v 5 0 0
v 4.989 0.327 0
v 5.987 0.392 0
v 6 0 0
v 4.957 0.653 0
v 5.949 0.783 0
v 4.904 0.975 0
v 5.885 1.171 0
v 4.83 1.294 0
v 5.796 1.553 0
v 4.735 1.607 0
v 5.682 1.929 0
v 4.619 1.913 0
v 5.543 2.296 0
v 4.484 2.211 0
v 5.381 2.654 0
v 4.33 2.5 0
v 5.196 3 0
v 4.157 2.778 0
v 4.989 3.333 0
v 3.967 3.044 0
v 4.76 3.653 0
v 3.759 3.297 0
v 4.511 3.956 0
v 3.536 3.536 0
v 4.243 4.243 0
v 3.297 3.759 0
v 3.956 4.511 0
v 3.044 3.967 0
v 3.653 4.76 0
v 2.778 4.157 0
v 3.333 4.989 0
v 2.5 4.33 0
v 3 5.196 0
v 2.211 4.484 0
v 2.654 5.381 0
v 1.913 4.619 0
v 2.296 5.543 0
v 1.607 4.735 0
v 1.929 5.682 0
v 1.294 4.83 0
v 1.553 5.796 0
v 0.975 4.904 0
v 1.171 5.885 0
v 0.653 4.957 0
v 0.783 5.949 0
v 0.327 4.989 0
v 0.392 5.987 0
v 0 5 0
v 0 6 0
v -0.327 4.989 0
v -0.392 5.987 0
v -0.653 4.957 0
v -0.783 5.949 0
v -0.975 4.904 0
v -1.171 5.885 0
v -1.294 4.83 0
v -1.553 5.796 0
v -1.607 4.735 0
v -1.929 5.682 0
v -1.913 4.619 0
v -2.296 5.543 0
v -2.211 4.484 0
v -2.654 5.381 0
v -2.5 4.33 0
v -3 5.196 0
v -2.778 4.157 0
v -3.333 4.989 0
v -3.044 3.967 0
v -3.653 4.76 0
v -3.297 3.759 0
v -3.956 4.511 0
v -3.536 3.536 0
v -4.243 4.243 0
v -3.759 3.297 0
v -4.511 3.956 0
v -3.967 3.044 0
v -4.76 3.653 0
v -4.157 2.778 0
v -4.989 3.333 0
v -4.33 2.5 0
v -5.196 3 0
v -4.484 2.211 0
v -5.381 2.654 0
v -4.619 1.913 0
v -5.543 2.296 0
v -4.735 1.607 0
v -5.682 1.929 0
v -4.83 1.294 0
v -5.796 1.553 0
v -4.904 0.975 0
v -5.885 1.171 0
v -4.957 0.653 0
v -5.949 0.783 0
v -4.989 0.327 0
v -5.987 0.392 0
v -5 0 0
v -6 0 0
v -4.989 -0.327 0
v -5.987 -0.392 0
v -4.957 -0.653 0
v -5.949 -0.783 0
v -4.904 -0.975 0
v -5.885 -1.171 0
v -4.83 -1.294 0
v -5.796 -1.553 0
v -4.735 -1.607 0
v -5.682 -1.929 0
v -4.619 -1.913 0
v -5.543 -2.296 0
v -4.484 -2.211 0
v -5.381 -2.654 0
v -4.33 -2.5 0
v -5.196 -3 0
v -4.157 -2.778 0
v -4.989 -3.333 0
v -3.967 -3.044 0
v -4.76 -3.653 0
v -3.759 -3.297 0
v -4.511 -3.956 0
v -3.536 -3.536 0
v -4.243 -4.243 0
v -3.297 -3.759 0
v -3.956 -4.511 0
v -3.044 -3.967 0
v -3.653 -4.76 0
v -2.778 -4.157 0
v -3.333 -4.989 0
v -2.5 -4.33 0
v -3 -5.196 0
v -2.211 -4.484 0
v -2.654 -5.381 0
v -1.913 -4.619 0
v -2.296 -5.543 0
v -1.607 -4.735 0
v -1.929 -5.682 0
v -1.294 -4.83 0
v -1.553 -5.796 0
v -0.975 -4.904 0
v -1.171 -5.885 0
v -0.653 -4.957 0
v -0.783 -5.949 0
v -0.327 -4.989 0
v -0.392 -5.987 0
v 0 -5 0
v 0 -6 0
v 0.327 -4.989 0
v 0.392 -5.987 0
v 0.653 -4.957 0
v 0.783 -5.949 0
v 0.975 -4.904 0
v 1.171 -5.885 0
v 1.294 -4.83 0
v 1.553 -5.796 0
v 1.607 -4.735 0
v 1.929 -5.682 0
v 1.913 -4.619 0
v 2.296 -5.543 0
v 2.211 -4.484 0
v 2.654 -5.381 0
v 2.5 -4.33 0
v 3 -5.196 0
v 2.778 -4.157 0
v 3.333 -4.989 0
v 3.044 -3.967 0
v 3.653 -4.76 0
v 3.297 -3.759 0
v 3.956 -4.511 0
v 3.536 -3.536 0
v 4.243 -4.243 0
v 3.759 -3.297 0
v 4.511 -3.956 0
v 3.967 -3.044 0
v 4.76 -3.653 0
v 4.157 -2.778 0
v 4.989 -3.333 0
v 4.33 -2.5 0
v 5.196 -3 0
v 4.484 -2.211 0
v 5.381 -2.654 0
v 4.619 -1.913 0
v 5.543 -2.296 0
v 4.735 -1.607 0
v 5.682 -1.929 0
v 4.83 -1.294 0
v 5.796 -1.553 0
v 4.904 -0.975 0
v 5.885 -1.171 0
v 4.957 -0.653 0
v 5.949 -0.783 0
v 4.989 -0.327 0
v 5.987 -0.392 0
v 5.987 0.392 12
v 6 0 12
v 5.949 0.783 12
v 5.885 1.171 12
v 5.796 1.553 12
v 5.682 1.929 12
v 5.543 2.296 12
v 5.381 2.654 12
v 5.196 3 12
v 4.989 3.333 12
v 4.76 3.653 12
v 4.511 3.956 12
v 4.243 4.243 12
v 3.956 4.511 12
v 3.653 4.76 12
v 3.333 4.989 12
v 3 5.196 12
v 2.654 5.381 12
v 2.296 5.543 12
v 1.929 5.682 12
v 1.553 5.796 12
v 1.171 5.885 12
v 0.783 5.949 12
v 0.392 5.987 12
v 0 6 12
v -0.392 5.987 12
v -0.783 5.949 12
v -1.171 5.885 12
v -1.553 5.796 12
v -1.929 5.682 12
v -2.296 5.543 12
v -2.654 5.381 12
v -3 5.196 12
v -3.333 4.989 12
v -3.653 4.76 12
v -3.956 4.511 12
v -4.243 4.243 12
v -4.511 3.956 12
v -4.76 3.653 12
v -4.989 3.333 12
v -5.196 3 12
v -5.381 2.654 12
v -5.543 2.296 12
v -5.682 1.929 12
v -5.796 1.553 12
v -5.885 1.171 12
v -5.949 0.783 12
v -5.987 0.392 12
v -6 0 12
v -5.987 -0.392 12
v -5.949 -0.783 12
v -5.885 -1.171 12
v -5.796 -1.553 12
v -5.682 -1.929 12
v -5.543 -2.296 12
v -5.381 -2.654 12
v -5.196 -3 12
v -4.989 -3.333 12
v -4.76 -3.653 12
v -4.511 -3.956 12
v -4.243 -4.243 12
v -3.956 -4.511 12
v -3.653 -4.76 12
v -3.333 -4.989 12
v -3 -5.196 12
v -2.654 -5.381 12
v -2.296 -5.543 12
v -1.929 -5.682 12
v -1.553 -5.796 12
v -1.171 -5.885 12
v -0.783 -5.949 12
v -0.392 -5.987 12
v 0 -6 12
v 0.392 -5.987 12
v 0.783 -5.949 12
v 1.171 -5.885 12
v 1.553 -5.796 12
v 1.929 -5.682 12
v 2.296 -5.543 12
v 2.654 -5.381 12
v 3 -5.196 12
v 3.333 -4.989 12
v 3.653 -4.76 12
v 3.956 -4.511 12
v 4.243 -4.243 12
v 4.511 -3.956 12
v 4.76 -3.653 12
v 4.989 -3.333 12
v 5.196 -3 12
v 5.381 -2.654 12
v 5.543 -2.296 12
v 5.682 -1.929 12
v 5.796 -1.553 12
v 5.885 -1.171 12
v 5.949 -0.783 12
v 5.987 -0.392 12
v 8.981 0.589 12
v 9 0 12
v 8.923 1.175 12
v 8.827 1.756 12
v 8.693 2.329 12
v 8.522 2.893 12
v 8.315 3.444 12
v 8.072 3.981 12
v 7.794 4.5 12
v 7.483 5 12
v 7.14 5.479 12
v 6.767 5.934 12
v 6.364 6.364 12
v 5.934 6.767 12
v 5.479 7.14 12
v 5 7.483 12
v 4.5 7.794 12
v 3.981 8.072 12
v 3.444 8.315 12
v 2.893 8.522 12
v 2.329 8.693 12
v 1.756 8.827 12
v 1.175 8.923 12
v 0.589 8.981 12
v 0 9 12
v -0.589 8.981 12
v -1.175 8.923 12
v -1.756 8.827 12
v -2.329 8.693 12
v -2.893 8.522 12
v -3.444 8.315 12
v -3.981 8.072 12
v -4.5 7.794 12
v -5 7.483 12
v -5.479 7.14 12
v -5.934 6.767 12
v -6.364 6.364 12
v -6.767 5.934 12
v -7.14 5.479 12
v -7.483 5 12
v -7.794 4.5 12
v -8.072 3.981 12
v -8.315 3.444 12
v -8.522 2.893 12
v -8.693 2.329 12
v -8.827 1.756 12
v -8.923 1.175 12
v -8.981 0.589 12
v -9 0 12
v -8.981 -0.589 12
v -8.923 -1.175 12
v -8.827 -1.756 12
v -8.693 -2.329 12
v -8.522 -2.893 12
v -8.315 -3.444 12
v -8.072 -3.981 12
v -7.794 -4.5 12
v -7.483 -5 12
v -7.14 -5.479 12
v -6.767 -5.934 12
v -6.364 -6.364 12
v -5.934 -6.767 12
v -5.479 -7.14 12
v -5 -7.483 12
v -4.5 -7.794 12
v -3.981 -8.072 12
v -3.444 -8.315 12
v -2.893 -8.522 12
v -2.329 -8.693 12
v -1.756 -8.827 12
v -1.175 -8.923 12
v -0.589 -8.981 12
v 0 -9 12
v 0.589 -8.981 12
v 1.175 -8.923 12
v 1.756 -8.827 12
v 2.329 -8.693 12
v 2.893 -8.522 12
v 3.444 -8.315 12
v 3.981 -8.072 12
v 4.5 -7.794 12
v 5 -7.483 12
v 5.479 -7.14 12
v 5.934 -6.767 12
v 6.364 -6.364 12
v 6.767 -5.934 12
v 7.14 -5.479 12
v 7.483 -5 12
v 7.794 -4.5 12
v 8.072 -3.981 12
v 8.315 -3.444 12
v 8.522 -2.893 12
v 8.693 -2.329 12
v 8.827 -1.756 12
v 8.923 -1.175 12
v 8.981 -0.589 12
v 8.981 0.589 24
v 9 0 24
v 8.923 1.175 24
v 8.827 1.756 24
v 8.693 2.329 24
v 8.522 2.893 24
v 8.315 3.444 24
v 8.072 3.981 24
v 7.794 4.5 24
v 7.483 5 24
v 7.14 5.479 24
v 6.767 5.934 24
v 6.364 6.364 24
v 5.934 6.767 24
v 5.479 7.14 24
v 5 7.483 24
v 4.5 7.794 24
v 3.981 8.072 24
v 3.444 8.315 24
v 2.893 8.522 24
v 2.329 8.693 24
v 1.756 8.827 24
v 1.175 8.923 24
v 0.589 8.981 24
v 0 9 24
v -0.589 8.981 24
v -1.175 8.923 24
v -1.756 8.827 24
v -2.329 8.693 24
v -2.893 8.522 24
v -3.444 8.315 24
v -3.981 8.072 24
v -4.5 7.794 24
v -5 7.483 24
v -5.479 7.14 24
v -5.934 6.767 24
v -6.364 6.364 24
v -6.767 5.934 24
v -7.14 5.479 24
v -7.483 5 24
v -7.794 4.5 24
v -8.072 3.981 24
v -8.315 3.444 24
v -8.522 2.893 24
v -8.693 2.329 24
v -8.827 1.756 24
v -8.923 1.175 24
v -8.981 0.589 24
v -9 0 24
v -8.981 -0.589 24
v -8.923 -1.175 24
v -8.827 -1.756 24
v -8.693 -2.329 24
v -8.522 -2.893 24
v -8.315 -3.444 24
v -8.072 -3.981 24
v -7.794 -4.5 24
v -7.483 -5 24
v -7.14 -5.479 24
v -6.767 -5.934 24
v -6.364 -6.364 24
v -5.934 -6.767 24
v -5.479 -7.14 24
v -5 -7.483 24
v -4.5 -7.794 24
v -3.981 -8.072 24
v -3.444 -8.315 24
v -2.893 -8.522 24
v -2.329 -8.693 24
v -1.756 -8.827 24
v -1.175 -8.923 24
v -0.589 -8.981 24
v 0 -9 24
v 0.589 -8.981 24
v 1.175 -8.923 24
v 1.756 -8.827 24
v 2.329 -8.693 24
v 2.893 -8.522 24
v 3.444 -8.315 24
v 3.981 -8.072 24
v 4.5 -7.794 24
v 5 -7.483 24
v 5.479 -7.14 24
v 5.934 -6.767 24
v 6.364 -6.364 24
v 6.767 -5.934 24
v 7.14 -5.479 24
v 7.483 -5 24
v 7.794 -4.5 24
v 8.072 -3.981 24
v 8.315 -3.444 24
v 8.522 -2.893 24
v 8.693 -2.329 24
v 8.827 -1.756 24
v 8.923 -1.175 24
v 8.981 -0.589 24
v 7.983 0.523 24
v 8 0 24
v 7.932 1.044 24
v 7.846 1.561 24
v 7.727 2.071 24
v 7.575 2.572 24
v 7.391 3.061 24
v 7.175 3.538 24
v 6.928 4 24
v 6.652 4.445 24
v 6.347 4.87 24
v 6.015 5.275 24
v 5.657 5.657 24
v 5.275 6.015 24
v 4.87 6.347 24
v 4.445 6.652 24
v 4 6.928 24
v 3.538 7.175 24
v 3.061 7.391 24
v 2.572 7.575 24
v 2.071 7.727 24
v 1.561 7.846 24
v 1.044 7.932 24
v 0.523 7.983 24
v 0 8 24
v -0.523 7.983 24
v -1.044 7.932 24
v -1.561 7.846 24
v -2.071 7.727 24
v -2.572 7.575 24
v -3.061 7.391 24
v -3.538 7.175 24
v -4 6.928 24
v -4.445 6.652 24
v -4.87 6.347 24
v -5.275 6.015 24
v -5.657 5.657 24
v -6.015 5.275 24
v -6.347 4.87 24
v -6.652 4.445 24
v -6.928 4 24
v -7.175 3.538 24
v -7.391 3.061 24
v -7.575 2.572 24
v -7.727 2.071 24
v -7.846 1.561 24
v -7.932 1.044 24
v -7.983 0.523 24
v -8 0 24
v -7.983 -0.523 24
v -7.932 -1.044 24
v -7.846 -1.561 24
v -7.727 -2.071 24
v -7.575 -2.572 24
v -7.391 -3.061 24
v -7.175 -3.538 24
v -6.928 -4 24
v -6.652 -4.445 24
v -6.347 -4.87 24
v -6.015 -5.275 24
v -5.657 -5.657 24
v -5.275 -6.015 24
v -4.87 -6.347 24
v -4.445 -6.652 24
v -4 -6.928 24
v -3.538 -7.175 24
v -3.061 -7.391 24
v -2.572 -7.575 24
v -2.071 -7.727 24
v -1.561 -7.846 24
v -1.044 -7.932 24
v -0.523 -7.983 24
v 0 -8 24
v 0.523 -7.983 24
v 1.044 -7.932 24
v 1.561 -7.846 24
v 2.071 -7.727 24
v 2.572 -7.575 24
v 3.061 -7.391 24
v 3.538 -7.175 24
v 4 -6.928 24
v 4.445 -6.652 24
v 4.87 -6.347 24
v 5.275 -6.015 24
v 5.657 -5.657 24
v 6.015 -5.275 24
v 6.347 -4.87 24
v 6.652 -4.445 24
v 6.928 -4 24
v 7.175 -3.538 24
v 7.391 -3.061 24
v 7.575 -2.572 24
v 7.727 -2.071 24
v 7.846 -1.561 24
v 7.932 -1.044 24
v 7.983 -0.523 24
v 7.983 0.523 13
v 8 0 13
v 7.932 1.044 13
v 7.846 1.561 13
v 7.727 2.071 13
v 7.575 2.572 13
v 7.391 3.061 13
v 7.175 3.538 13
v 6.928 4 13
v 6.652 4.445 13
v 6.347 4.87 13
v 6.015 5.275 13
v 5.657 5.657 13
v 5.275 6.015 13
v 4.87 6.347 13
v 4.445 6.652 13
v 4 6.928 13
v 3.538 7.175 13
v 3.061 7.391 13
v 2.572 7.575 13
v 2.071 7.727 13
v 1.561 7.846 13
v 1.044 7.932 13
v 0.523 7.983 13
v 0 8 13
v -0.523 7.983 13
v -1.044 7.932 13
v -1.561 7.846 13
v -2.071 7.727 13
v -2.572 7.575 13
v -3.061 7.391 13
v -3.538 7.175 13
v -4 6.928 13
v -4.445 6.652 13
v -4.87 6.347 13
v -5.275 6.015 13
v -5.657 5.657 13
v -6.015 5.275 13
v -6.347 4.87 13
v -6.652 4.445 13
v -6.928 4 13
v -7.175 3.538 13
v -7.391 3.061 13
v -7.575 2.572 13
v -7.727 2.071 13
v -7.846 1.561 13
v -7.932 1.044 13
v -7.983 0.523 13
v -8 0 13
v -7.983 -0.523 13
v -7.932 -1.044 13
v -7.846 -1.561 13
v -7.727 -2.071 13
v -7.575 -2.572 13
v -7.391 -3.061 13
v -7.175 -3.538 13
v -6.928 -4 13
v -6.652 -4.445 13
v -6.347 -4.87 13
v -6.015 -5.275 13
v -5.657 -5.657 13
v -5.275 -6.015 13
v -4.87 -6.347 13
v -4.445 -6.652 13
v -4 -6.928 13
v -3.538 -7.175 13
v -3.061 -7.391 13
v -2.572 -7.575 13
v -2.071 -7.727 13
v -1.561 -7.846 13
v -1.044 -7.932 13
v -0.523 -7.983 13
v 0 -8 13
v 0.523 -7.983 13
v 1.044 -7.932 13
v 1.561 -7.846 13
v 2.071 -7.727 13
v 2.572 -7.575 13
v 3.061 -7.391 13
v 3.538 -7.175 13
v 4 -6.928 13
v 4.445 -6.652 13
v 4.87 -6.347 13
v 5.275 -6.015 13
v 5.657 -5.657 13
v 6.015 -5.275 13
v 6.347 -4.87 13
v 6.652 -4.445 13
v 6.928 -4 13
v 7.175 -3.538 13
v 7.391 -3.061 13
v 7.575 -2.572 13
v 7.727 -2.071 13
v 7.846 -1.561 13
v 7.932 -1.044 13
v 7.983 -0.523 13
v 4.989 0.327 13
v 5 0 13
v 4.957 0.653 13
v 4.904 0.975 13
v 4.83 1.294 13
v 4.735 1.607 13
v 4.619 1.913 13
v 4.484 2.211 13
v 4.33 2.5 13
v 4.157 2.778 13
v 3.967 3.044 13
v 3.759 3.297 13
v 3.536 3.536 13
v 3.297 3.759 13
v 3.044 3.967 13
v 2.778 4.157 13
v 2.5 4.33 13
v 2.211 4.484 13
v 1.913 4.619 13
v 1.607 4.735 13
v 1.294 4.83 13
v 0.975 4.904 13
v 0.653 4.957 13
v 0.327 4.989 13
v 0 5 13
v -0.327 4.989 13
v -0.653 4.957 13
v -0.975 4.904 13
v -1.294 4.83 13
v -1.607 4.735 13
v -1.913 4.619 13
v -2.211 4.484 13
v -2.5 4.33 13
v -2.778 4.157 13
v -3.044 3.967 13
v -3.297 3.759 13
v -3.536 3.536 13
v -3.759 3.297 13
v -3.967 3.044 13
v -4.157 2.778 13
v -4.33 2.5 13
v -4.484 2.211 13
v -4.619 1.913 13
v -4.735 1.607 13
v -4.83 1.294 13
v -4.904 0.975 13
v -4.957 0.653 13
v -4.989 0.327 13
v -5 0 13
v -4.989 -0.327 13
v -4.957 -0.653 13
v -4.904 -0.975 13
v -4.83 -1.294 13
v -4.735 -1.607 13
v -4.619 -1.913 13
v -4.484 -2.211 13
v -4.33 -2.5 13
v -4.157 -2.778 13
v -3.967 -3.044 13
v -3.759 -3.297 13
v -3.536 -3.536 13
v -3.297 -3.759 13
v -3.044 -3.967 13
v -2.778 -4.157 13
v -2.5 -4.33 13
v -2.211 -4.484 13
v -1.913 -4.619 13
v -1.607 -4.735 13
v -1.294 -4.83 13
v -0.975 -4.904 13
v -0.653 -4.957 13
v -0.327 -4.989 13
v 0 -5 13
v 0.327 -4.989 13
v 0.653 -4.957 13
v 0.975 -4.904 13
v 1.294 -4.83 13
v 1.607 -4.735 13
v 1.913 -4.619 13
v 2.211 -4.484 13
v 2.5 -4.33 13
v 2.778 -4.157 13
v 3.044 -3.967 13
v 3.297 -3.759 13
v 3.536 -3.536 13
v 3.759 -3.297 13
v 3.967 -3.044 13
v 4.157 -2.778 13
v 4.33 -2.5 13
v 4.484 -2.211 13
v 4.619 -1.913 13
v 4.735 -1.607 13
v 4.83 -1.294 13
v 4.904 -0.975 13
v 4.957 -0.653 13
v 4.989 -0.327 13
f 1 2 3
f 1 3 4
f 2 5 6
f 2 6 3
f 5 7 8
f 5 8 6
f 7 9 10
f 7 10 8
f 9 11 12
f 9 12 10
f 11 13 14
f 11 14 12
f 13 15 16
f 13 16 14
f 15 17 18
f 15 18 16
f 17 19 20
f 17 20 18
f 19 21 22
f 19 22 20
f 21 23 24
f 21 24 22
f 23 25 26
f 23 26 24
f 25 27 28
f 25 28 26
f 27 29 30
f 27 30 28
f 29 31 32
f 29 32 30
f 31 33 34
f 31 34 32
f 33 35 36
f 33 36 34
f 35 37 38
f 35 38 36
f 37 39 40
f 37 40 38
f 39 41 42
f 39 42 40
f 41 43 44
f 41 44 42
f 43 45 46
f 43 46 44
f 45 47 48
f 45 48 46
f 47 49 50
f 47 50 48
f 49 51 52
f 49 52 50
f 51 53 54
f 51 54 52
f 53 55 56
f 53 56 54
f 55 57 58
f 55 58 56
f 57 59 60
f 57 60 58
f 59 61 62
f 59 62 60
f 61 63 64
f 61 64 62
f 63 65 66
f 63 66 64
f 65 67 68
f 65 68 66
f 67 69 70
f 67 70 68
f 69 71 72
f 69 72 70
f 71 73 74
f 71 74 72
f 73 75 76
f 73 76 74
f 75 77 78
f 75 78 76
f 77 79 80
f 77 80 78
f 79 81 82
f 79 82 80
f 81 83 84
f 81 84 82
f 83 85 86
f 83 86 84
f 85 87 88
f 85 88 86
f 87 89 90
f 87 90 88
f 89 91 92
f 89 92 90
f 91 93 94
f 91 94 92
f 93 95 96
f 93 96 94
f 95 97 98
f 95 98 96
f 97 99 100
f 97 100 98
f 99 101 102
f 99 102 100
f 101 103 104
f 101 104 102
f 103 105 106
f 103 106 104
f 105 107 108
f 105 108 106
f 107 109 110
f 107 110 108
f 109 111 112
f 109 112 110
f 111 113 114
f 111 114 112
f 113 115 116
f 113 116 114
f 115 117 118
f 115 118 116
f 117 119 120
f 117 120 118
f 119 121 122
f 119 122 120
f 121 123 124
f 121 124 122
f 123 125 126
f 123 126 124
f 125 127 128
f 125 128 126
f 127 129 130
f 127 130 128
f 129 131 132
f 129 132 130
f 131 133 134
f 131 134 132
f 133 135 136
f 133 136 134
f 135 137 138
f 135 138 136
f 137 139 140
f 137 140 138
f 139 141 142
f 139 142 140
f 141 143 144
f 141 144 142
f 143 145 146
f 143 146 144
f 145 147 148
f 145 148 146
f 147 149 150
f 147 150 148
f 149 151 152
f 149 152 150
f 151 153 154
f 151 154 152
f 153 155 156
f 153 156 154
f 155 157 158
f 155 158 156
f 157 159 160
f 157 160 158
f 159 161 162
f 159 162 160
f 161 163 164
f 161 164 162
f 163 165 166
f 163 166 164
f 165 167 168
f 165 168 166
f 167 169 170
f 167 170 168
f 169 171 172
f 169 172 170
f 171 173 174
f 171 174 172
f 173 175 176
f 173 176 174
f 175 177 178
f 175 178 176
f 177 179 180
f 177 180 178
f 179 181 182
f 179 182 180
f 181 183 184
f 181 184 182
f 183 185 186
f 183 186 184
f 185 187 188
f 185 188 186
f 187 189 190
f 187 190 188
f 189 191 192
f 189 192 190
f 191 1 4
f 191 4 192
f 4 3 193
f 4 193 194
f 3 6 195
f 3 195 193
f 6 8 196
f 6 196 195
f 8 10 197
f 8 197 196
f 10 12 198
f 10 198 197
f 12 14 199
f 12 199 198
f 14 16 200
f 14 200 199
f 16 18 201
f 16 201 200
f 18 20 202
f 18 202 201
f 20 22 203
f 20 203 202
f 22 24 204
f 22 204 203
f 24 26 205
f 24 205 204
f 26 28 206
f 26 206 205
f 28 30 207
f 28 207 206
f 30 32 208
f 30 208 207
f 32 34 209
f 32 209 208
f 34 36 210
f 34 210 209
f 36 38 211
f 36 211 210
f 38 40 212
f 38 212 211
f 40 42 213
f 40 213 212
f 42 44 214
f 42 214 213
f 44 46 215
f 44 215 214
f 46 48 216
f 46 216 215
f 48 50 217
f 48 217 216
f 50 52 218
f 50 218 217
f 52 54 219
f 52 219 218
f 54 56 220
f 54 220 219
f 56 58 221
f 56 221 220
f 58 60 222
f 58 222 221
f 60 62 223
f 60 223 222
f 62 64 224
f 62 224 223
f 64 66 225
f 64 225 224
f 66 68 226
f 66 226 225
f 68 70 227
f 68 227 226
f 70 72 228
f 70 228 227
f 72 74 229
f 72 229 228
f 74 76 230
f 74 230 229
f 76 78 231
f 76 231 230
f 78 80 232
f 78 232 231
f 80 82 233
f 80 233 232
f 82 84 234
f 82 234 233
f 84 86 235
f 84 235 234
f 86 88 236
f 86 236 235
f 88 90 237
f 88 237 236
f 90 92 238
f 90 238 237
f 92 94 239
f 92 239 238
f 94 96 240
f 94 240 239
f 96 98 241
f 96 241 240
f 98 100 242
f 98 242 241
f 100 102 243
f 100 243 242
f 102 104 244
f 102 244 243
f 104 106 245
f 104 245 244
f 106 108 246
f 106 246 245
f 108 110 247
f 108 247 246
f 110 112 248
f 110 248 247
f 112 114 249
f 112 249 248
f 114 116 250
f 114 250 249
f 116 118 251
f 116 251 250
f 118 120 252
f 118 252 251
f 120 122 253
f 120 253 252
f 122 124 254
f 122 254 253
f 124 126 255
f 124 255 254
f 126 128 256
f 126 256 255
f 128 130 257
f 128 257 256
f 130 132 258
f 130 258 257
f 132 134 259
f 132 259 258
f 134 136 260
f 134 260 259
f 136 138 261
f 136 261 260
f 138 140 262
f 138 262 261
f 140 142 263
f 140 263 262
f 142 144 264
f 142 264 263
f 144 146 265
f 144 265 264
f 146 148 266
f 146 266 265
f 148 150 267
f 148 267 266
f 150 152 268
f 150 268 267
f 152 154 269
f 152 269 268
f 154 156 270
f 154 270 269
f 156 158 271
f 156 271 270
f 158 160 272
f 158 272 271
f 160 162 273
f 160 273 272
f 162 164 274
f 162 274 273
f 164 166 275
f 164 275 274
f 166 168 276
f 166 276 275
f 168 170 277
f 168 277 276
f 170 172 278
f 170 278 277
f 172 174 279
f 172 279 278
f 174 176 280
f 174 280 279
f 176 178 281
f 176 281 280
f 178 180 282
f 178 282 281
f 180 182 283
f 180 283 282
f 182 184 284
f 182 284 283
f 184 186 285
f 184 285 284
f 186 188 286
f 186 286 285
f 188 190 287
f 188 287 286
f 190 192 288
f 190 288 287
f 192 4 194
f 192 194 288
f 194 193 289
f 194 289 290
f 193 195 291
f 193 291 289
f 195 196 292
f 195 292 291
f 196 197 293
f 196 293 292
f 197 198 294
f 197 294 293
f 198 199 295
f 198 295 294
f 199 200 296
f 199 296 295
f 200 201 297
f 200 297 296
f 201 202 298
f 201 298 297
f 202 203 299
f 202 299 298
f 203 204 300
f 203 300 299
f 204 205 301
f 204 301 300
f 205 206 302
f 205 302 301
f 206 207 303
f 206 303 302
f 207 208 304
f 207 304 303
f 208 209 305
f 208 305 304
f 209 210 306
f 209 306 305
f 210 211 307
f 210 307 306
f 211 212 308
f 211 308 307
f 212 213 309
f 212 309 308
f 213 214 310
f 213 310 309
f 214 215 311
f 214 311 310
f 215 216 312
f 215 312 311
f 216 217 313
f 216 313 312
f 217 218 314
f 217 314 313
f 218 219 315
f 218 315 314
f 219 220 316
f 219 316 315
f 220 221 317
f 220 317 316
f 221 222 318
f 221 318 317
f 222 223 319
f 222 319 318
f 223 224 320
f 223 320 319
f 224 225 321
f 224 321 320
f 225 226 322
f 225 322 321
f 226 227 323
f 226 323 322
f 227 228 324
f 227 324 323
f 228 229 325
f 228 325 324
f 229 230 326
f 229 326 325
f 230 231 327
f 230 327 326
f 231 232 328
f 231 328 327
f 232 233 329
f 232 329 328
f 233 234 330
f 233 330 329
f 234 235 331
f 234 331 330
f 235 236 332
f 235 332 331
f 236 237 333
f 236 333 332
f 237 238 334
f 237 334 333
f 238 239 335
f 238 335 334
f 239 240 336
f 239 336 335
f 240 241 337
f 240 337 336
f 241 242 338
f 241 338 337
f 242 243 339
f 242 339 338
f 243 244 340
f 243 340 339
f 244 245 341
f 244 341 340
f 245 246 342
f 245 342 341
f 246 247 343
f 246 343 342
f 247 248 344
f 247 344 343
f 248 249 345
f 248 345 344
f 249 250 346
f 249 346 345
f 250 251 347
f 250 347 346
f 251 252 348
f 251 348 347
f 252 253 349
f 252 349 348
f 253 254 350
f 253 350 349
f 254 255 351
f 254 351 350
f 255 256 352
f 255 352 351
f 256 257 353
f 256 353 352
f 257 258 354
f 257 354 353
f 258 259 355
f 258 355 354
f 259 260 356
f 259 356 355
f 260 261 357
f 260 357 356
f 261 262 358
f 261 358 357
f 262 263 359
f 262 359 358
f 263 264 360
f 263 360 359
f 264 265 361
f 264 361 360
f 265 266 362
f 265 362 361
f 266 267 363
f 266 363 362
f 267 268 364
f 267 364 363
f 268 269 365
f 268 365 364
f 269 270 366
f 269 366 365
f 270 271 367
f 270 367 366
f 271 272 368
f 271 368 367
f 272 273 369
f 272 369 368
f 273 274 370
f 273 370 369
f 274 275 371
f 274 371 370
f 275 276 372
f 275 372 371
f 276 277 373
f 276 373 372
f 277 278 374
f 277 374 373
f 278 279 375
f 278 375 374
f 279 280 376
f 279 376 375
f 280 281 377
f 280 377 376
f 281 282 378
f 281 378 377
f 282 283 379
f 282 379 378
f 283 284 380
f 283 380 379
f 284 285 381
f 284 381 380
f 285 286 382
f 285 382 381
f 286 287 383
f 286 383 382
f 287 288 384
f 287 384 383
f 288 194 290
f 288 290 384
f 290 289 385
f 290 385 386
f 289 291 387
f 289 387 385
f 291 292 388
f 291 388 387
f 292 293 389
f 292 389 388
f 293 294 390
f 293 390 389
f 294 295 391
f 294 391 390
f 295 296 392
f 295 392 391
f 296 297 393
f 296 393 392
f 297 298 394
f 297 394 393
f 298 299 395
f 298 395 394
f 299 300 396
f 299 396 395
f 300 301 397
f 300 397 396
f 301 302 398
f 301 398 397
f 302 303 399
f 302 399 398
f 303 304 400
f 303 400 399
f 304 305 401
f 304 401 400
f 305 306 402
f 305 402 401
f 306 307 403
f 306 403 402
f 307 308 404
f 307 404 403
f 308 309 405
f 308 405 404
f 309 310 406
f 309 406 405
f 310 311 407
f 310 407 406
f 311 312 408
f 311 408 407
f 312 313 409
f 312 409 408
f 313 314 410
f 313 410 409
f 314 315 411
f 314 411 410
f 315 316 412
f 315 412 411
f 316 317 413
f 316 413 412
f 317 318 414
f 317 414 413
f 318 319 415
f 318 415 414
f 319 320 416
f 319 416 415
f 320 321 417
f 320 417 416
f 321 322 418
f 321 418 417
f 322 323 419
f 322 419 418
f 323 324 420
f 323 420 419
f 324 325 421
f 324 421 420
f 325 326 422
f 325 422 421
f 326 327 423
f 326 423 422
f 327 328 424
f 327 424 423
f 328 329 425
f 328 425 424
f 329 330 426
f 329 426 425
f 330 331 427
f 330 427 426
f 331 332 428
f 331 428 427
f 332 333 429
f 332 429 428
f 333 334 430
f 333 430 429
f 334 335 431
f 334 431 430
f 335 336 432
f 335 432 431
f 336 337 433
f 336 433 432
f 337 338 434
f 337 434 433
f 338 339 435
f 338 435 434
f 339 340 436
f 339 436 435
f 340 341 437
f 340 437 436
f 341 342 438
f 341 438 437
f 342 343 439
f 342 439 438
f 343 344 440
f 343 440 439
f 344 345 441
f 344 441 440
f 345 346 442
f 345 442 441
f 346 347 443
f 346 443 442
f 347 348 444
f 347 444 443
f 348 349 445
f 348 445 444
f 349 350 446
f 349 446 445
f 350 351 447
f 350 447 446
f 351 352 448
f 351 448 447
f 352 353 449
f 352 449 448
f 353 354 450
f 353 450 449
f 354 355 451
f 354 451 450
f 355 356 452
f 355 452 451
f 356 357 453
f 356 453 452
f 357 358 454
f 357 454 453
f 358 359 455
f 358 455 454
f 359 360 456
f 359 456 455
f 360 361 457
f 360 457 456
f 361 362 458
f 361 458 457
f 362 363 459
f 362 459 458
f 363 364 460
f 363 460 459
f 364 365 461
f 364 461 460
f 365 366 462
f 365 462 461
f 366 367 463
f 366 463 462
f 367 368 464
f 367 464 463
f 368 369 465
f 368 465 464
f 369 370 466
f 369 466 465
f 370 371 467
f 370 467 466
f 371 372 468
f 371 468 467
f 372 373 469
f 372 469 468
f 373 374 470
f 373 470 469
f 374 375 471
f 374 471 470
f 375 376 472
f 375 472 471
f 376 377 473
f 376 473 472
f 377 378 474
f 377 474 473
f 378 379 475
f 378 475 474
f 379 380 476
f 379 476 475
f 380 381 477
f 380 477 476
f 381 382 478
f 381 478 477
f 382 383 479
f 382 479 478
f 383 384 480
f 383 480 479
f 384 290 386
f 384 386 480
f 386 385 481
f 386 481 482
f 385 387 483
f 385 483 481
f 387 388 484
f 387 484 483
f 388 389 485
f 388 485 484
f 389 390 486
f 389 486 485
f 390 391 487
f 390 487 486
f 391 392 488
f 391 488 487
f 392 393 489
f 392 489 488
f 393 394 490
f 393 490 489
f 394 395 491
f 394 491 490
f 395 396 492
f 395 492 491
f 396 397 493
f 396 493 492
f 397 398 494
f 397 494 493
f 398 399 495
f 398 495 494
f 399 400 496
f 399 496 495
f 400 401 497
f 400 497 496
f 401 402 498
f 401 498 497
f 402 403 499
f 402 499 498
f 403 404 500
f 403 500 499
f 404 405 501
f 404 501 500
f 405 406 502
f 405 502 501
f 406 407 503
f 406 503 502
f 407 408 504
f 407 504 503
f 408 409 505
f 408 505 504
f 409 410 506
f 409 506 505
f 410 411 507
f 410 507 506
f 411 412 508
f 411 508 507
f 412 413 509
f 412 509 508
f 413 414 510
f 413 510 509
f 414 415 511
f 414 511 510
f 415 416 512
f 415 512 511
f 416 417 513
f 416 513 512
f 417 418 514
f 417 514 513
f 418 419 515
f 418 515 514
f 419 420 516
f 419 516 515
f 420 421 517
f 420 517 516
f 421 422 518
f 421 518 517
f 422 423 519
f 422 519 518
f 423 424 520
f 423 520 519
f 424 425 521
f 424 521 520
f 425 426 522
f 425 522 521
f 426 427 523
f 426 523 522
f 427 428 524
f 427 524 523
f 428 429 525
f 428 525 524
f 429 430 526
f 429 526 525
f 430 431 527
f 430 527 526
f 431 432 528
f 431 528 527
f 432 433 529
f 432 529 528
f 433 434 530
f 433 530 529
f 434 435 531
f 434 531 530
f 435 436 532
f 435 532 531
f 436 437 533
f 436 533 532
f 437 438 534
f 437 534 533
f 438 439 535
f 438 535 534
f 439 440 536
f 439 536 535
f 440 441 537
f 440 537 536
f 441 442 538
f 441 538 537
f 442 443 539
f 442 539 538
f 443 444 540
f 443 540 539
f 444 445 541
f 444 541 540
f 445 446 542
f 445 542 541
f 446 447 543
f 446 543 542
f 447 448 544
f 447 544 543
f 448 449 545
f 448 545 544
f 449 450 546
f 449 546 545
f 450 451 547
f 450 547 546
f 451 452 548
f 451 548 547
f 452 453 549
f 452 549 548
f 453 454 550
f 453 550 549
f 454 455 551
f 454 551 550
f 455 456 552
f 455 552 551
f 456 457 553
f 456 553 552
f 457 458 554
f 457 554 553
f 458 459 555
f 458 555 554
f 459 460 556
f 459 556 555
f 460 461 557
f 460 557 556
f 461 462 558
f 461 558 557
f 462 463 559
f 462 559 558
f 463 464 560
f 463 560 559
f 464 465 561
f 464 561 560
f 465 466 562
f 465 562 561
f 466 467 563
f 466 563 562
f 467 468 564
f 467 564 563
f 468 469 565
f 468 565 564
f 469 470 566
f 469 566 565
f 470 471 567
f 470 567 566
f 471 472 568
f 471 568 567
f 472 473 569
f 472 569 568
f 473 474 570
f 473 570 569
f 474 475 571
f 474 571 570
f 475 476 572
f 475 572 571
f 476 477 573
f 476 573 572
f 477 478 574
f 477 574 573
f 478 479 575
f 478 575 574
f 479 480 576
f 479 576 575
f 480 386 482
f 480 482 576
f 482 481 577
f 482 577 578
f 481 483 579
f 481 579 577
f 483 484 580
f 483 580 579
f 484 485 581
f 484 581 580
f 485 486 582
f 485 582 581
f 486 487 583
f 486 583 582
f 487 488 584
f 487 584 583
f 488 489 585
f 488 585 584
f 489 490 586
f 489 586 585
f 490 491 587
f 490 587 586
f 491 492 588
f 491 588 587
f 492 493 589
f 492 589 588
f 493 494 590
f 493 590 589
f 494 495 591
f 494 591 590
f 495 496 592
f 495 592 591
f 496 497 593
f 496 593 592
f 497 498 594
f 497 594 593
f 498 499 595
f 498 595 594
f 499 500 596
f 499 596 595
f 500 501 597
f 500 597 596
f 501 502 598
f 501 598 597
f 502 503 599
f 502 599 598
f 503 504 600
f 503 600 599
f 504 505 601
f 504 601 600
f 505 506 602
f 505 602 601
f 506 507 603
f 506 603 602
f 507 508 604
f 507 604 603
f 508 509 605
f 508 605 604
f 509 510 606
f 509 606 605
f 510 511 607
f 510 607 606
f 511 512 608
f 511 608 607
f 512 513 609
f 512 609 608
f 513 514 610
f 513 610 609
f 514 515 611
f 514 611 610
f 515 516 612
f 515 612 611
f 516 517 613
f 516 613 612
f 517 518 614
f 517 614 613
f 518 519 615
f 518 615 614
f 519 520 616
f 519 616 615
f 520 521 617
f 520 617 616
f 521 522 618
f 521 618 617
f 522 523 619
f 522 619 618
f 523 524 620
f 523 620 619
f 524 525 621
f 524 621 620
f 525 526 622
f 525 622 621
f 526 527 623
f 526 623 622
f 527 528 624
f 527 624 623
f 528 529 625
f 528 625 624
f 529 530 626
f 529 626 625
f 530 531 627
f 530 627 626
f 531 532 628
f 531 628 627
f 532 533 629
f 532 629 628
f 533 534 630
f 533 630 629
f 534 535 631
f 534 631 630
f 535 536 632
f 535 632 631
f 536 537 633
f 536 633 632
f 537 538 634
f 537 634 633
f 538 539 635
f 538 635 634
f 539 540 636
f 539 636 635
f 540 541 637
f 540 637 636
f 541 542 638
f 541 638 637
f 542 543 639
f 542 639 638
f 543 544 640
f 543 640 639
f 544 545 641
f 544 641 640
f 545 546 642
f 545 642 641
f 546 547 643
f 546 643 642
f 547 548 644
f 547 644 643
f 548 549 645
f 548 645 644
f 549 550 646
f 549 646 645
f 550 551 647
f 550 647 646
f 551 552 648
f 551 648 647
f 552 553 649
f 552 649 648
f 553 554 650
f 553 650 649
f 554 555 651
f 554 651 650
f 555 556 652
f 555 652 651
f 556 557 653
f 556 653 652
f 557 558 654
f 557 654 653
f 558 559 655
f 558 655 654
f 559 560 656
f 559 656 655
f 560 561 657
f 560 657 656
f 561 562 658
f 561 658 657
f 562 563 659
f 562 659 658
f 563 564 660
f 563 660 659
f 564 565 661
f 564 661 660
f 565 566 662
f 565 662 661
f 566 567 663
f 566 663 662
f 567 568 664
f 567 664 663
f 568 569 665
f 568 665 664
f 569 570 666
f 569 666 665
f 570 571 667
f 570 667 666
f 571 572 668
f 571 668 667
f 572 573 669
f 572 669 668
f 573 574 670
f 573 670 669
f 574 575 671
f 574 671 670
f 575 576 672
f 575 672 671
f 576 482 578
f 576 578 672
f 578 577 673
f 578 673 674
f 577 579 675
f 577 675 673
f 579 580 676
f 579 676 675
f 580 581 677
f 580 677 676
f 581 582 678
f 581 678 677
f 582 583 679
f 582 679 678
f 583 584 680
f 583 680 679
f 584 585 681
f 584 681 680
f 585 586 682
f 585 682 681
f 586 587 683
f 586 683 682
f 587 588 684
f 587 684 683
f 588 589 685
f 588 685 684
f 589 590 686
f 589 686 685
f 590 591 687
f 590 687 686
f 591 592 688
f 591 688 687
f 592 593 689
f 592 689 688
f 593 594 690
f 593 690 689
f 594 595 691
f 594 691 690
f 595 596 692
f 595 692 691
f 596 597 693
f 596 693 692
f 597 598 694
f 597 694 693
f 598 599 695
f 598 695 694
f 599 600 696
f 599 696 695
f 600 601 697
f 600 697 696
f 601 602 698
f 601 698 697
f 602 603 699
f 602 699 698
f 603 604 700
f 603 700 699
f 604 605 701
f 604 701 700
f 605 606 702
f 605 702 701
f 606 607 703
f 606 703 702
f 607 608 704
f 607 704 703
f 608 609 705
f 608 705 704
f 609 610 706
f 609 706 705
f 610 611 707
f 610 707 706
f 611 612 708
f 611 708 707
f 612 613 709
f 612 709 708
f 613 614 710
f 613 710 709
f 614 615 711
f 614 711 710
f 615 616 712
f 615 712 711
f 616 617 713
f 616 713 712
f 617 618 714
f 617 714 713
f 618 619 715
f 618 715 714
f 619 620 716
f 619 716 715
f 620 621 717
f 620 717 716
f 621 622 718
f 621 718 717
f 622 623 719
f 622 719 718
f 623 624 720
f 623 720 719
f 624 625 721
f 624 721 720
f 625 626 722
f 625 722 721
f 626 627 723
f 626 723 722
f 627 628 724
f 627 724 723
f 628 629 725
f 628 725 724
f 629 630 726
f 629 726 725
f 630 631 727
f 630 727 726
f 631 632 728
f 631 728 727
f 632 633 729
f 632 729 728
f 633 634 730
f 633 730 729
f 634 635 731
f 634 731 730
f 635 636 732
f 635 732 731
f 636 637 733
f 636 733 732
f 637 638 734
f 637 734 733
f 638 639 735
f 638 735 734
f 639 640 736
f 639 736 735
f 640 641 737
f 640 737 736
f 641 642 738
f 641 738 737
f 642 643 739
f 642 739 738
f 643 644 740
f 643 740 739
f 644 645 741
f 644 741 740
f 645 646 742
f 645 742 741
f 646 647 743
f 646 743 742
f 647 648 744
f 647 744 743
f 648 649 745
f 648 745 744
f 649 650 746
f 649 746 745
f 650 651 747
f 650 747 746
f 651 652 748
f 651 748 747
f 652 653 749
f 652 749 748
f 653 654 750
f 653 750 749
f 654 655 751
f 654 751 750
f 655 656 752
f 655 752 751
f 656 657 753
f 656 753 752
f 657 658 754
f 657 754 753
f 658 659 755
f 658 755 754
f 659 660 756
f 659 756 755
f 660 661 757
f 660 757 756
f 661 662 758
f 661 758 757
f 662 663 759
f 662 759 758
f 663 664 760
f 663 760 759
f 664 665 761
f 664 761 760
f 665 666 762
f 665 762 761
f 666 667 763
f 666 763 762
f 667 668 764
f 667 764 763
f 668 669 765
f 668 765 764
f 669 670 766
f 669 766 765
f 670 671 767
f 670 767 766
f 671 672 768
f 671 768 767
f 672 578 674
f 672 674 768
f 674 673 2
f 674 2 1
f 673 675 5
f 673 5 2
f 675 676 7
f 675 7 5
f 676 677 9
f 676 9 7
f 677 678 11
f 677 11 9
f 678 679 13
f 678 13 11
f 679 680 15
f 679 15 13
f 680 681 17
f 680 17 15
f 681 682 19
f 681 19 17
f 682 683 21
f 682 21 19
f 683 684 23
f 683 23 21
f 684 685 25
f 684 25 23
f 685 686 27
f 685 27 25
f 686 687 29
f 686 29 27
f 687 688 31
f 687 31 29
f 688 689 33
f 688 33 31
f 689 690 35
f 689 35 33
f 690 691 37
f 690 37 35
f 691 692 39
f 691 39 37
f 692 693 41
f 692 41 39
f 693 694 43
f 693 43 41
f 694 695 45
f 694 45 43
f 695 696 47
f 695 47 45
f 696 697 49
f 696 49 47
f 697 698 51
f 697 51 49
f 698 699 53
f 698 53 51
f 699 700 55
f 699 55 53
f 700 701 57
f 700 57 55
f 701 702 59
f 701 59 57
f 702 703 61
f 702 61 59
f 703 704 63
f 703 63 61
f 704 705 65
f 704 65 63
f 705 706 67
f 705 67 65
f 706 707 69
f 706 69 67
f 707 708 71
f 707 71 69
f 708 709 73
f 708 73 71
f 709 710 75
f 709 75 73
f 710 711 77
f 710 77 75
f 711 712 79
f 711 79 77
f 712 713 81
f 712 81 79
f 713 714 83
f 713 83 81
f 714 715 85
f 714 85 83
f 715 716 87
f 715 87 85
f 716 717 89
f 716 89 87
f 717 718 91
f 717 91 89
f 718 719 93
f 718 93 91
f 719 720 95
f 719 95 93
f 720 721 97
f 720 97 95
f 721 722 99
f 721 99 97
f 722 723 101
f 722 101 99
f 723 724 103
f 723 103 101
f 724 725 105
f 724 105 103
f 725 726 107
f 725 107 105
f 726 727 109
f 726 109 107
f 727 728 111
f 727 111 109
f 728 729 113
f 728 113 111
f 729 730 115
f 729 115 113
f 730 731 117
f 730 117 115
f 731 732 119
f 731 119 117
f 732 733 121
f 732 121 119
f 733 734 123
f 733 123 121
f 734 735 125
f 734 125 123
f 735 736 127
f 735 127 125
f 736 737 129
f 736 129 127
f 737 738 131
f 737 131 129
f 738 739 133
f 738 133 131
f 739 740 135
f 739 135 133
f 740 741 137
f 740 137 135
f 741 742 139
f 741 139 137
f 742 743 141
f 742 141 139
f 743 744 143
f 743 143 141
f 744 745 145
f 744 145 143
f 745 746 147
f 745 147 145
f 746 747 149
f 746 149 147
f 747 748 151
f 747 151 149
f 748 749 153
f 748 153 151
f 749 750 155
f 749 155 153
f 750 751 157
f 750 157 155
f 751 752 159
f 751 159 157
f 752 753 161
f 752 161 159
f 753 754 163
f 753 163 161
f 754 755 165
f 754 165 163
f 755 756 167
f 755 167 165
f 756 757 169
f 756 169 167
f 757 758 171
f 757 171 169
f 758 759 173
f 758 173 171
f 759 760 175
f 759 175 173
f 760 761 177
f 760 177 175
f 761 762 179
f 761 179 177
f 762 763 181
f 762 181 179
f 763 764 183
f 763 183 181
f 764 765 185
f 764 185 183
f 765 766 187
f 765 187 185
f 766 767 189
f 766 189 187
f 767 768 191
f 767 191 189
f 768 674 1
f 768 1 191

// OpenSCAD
// Original MechIntel educational model. CC0-1.0. Units: mm.
// Not a standardized or load-rated component.
$fn=96;
// Section points: [radius, height], mm. Edit to change the profile.
section=[[5, 0], [6, 0], [6, 12], [9, 12], [9, 24], [8, 24], [8, 13], [5, 13]];
rotate_extrude($fn=96) polygon(points=section);
